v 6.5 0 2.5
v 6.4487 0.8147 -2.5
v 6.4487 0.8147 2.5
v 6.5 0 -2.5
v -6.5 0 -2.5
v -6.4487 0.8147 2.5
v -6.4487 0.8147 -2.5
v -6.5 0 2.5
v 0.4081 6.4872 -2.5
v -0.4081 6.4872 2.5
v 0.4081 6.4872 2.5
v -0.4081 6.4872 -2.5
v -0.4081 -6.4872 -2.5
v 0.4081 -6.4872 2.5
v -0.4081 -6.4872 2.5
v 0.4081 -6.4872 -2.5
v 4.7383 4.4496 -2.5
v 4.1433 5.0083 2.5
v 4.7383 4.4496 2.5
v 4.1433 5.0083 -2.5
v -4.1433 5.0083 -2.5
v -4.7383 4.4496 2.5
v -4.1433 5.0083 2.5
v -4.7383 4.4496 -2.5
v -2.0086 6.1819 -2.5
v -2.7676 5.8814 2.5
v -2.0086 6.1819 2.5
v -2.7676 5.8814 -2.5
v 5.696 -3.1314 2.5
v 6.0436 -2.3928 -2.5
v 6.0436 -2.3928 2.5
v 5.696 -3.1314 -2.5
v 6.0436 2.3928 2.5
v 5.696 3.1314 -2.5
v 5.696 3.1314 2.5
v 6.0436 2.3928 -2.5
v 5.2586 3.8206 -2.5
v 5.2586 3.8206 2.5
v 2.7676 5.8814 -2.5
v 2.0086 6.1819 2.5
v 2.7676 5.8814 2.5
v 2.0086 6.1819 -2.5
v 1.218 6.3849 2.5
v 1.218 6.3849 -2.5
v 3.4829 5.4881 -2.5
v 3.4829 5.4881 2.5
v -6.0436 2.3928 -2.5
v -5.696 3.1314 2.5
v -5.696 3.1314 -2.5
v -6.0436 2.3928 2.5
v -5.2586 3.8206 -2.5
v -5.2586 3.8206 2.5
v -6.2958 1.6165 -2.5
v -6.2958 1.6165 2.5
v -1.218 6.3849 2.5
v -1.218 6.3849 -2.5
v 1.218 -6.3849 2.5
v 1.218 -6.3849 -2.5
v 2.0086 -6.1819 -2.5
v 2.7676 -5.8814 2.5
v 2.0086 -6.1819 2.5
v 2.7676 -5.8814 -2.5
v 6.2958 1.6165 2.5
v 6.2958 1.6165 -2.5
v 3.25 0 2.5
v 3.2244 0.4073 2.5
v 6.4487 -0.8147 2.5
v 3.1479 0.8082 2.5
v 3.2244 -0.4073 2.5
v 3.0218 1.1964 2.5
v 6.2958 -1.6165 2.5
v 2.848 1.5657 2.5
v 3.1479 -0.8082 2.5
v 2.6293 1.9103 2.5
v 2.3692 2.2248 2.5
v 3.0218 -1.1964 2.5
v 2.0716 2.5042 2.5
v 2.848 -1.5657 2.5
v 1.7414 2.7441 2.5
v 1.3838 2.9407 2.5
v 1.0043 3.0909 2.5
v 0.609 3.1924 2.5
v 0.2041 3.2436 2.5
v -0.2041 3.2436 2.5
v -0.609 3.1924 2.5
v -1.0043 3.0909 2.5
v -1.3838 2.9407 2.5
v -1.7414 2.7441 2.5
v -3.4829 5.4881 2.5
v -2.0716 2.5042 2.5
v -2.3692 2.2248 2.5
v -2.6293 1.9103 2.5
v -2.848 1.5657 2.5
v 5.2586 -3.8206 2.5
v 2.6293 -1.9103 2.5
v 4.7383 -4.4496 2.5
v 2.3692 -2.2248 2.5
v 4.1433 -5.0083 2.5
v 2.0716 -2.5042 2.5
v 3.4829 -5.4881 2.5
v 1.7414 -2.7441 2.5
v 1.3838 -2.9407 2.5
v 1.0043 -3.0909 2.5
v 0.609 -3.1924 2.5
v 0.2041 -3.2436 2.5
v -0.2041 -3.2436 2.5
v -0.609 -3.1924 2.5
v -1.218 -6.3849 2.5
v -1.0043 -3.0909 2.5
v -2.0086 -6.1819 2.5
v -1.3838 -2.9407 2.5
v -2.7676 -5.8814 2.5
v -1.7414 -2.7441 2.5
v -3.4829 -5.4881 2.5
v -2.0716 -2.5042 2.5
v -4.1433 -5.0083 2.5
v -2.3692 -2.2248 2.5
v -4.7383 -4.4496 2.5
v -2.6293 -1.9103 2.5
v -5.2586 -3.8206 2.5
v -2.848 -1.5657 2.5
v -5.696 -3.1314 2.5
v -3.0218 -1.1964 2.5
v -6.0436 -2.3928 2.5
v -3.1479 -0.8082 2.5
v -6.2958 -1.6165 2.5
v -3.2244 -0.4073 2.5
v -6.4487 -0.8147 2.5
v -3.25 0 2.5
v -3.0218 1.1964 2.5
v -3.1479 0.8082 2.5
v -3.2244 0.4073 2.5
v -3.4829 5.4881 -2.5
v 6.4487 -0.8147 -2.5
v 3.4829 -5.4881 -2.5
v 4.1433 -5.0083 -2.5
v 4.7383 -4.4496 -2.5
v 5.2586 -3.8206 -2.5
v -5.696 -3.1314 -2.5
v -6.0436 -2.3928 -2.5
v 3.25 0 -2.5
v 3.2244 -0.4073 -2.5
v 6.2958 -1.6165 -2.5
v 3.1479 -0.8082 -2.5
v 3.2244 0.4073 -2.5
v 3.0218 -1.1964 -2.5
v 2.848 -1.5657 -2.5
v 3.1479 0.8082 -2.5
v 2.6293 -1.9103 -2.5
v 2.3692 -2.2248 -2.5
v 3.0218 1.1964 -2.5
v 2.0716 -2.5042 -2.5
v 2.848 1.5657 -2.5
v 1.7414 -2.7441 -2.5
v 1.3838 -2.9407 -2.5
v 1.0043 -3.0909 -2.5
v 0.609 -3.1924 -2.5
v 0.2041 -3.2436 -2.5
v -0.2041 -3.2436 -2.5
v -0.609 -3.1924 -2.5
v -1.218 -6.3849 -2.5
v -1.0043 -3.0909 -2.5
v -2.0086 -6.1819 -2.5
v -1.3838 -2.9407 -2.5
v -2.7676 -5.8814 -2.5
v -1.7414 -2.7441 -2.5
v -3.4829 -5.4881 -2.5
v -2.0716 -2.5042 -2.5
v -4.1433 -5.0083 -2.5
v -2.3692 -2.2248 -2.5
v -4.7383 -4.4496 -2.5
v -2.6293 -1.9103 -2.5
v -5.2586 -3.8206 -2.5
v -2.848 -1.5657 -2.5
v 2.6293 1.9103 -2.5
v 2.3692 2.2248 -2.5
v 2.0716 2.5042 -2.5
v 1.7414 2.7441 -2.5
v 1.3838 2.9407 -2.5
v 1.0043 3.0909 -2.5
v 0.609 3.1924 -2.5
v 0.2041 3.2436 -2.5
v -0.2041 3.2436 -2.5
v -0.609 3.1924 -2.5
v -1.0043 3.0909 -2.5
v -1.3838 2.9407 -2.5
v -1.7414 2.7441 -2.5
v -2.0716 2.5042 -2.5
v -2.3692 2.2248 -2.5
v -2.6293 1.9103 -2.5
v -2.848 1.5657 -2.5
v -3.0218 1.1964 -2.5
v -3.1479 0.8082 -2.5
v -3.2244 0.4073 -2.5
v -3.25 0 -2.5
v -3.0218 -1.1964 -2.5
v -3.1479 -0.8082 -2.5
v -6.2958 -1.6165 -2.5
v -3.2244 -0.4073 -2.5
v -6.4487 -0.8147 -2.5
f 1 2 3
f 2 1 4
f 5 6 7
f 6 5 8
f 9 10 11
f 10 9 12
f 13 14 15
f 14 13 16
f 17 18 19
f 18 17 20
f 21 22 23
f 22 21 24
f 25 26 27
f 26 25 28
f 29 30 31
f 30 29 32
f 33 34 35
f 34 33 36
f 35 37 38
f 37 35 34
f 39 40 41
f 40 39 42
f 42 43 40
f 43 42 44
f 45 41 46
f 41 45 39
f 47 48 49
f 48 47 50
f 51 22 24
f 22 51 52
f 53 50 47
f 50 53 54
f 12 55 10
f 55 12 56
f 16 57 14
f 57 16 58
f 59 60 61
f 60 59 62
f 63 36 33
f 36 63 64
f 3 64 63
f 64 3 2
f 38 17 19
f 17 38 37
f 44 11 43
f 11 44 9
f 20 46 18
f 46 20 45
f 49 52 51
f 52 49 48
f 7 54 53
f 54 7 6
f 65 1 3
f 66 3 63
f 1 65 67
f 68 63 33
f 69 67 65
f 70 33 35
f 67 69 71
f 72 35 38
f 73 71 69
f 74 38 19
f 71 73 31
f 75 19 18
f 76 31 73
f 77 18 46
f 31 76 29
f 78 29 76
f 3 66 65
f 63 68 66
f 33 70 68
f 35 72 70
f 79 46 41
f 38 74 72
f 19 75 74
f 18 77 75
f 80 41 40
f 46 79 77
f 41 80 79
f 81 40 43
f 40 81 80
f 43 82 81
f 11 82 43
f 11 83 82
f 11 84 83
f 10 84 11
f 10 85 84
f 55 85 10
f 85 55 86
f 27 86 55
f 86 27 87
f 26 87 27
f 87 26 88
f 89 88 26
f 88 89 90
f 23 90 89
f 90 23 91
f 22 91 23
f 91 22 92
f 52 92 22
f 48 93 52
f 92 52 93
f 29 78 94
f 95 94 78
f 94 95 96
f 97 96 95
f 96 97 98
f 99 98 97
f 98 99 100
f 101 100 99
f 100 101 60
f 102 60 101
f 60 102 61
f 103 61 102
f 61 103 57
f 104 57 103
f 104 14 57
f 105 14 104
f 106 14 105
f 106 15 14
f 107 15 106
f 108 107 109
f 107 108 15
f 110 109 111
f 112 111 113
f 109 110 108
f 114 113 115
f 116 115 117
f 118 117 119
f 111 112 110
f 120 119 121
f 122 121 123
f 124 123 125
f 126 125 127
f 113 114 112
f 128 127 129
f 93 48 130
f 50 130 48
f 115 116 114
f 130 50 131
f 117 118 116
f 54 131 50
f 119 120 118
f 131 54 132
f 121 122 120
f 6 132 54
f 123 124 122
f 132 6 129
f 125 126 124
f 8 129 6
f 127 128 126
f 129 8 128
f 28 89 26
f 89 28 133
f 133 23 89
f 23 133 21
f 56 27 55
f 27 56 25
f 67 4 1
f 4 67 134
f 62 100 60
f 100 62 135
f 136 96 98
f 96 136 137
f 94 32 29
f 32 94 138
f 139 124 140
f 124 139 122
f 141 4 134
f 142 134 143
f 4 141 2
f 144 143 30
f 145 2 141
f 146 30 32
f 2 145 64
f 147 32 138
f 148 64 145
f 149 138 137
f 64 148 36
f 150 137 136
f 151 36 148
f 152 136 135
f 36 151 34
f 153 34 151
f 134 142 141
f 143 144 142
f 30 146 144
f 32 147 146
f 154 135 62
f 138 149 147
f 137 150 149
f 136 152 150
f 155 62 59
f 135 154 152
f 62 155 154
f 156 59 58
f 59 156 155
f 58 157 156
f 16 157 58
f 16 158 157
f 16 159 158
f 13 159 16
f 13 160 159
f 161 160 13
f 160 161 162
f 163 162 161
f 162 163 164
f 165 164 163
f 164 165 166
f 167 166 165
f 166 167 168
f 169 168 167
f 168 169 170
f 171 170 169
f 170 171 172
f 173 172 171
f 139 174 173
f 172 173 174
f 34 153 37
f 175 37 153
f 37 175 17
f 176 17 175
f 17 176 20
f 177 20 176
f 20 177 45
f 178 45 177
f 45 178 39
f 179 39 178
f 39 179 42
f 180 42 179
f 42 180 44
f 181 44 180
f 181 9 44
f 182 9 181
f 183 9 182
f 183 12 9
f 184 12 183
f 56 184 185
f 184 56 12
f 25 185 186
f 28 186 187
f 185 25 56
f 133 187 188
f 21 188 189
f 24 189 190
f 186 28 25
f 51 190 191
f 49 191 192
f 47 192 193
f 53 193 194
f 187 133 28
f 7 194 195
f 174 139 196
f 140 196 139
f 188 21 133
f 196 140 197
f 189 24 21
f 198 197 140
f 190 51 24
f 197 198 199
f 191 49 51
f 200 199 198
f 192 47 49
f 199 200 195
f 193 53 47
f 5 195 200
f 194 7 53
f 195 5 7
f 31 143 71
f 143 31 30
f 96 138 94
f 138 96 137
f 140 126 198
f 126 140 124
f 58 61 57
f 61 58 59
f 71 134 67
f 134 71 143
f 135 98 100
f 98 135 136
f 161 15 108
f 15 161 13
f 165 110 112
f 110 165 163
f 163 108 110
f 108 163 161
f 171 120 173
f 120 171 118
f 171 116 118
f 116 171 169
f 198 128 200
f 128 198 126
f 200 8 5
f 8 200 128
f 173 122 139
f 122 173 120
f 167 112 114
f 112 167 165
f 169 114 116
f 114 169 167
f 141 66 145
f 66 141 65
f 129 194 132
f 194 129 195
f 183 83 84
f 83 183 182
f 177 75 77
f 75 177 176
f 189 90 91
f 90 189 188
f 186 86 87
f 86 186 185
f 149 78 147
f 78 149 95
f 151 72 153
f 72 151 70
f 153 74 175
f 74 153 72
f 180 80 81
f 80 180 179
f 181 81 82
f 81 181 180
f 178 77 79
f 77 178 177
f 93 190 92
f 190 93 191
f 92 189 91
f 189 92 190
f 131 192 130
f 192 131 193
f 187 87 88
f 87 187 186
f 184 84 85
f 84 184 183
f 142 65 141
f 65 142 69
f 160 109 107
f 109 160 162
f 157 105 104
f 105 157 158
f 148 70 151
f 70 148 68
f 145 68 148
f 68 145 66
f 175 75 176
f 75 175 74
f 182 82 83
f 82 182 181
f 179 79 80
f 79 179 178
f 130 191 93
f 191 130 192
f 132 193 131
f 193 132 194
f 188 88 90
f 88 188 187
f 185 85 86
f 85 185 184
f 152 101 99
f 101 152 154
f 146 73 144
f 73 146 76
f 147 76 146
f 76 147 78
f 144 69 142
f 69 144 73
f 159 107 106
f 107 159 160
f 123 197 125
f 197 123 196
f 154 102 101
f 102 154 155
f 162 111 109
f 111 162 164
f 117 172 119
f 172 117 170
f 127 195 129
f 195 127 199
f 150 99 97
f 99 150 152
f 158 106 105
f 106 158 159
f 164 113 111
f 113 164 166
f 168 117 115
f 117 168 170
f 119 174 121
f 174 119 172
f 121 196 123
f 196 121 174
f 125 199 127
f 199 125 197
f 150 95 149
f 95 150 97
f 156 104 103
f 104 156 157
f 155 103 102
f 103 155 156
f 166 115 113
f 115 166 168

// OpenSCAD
$fn = 50;


difference() {
	union() {
		translate(v = [0, 0, -2.5000000000]) {
			cylinder(h = 5, r = 6.5000000000);
		}
	}
	union() {
		translate(v = [0, 0, -100.0000000000]) {
			cylinder(h = 200, r = 3.2500000000);
		}
	}
}
